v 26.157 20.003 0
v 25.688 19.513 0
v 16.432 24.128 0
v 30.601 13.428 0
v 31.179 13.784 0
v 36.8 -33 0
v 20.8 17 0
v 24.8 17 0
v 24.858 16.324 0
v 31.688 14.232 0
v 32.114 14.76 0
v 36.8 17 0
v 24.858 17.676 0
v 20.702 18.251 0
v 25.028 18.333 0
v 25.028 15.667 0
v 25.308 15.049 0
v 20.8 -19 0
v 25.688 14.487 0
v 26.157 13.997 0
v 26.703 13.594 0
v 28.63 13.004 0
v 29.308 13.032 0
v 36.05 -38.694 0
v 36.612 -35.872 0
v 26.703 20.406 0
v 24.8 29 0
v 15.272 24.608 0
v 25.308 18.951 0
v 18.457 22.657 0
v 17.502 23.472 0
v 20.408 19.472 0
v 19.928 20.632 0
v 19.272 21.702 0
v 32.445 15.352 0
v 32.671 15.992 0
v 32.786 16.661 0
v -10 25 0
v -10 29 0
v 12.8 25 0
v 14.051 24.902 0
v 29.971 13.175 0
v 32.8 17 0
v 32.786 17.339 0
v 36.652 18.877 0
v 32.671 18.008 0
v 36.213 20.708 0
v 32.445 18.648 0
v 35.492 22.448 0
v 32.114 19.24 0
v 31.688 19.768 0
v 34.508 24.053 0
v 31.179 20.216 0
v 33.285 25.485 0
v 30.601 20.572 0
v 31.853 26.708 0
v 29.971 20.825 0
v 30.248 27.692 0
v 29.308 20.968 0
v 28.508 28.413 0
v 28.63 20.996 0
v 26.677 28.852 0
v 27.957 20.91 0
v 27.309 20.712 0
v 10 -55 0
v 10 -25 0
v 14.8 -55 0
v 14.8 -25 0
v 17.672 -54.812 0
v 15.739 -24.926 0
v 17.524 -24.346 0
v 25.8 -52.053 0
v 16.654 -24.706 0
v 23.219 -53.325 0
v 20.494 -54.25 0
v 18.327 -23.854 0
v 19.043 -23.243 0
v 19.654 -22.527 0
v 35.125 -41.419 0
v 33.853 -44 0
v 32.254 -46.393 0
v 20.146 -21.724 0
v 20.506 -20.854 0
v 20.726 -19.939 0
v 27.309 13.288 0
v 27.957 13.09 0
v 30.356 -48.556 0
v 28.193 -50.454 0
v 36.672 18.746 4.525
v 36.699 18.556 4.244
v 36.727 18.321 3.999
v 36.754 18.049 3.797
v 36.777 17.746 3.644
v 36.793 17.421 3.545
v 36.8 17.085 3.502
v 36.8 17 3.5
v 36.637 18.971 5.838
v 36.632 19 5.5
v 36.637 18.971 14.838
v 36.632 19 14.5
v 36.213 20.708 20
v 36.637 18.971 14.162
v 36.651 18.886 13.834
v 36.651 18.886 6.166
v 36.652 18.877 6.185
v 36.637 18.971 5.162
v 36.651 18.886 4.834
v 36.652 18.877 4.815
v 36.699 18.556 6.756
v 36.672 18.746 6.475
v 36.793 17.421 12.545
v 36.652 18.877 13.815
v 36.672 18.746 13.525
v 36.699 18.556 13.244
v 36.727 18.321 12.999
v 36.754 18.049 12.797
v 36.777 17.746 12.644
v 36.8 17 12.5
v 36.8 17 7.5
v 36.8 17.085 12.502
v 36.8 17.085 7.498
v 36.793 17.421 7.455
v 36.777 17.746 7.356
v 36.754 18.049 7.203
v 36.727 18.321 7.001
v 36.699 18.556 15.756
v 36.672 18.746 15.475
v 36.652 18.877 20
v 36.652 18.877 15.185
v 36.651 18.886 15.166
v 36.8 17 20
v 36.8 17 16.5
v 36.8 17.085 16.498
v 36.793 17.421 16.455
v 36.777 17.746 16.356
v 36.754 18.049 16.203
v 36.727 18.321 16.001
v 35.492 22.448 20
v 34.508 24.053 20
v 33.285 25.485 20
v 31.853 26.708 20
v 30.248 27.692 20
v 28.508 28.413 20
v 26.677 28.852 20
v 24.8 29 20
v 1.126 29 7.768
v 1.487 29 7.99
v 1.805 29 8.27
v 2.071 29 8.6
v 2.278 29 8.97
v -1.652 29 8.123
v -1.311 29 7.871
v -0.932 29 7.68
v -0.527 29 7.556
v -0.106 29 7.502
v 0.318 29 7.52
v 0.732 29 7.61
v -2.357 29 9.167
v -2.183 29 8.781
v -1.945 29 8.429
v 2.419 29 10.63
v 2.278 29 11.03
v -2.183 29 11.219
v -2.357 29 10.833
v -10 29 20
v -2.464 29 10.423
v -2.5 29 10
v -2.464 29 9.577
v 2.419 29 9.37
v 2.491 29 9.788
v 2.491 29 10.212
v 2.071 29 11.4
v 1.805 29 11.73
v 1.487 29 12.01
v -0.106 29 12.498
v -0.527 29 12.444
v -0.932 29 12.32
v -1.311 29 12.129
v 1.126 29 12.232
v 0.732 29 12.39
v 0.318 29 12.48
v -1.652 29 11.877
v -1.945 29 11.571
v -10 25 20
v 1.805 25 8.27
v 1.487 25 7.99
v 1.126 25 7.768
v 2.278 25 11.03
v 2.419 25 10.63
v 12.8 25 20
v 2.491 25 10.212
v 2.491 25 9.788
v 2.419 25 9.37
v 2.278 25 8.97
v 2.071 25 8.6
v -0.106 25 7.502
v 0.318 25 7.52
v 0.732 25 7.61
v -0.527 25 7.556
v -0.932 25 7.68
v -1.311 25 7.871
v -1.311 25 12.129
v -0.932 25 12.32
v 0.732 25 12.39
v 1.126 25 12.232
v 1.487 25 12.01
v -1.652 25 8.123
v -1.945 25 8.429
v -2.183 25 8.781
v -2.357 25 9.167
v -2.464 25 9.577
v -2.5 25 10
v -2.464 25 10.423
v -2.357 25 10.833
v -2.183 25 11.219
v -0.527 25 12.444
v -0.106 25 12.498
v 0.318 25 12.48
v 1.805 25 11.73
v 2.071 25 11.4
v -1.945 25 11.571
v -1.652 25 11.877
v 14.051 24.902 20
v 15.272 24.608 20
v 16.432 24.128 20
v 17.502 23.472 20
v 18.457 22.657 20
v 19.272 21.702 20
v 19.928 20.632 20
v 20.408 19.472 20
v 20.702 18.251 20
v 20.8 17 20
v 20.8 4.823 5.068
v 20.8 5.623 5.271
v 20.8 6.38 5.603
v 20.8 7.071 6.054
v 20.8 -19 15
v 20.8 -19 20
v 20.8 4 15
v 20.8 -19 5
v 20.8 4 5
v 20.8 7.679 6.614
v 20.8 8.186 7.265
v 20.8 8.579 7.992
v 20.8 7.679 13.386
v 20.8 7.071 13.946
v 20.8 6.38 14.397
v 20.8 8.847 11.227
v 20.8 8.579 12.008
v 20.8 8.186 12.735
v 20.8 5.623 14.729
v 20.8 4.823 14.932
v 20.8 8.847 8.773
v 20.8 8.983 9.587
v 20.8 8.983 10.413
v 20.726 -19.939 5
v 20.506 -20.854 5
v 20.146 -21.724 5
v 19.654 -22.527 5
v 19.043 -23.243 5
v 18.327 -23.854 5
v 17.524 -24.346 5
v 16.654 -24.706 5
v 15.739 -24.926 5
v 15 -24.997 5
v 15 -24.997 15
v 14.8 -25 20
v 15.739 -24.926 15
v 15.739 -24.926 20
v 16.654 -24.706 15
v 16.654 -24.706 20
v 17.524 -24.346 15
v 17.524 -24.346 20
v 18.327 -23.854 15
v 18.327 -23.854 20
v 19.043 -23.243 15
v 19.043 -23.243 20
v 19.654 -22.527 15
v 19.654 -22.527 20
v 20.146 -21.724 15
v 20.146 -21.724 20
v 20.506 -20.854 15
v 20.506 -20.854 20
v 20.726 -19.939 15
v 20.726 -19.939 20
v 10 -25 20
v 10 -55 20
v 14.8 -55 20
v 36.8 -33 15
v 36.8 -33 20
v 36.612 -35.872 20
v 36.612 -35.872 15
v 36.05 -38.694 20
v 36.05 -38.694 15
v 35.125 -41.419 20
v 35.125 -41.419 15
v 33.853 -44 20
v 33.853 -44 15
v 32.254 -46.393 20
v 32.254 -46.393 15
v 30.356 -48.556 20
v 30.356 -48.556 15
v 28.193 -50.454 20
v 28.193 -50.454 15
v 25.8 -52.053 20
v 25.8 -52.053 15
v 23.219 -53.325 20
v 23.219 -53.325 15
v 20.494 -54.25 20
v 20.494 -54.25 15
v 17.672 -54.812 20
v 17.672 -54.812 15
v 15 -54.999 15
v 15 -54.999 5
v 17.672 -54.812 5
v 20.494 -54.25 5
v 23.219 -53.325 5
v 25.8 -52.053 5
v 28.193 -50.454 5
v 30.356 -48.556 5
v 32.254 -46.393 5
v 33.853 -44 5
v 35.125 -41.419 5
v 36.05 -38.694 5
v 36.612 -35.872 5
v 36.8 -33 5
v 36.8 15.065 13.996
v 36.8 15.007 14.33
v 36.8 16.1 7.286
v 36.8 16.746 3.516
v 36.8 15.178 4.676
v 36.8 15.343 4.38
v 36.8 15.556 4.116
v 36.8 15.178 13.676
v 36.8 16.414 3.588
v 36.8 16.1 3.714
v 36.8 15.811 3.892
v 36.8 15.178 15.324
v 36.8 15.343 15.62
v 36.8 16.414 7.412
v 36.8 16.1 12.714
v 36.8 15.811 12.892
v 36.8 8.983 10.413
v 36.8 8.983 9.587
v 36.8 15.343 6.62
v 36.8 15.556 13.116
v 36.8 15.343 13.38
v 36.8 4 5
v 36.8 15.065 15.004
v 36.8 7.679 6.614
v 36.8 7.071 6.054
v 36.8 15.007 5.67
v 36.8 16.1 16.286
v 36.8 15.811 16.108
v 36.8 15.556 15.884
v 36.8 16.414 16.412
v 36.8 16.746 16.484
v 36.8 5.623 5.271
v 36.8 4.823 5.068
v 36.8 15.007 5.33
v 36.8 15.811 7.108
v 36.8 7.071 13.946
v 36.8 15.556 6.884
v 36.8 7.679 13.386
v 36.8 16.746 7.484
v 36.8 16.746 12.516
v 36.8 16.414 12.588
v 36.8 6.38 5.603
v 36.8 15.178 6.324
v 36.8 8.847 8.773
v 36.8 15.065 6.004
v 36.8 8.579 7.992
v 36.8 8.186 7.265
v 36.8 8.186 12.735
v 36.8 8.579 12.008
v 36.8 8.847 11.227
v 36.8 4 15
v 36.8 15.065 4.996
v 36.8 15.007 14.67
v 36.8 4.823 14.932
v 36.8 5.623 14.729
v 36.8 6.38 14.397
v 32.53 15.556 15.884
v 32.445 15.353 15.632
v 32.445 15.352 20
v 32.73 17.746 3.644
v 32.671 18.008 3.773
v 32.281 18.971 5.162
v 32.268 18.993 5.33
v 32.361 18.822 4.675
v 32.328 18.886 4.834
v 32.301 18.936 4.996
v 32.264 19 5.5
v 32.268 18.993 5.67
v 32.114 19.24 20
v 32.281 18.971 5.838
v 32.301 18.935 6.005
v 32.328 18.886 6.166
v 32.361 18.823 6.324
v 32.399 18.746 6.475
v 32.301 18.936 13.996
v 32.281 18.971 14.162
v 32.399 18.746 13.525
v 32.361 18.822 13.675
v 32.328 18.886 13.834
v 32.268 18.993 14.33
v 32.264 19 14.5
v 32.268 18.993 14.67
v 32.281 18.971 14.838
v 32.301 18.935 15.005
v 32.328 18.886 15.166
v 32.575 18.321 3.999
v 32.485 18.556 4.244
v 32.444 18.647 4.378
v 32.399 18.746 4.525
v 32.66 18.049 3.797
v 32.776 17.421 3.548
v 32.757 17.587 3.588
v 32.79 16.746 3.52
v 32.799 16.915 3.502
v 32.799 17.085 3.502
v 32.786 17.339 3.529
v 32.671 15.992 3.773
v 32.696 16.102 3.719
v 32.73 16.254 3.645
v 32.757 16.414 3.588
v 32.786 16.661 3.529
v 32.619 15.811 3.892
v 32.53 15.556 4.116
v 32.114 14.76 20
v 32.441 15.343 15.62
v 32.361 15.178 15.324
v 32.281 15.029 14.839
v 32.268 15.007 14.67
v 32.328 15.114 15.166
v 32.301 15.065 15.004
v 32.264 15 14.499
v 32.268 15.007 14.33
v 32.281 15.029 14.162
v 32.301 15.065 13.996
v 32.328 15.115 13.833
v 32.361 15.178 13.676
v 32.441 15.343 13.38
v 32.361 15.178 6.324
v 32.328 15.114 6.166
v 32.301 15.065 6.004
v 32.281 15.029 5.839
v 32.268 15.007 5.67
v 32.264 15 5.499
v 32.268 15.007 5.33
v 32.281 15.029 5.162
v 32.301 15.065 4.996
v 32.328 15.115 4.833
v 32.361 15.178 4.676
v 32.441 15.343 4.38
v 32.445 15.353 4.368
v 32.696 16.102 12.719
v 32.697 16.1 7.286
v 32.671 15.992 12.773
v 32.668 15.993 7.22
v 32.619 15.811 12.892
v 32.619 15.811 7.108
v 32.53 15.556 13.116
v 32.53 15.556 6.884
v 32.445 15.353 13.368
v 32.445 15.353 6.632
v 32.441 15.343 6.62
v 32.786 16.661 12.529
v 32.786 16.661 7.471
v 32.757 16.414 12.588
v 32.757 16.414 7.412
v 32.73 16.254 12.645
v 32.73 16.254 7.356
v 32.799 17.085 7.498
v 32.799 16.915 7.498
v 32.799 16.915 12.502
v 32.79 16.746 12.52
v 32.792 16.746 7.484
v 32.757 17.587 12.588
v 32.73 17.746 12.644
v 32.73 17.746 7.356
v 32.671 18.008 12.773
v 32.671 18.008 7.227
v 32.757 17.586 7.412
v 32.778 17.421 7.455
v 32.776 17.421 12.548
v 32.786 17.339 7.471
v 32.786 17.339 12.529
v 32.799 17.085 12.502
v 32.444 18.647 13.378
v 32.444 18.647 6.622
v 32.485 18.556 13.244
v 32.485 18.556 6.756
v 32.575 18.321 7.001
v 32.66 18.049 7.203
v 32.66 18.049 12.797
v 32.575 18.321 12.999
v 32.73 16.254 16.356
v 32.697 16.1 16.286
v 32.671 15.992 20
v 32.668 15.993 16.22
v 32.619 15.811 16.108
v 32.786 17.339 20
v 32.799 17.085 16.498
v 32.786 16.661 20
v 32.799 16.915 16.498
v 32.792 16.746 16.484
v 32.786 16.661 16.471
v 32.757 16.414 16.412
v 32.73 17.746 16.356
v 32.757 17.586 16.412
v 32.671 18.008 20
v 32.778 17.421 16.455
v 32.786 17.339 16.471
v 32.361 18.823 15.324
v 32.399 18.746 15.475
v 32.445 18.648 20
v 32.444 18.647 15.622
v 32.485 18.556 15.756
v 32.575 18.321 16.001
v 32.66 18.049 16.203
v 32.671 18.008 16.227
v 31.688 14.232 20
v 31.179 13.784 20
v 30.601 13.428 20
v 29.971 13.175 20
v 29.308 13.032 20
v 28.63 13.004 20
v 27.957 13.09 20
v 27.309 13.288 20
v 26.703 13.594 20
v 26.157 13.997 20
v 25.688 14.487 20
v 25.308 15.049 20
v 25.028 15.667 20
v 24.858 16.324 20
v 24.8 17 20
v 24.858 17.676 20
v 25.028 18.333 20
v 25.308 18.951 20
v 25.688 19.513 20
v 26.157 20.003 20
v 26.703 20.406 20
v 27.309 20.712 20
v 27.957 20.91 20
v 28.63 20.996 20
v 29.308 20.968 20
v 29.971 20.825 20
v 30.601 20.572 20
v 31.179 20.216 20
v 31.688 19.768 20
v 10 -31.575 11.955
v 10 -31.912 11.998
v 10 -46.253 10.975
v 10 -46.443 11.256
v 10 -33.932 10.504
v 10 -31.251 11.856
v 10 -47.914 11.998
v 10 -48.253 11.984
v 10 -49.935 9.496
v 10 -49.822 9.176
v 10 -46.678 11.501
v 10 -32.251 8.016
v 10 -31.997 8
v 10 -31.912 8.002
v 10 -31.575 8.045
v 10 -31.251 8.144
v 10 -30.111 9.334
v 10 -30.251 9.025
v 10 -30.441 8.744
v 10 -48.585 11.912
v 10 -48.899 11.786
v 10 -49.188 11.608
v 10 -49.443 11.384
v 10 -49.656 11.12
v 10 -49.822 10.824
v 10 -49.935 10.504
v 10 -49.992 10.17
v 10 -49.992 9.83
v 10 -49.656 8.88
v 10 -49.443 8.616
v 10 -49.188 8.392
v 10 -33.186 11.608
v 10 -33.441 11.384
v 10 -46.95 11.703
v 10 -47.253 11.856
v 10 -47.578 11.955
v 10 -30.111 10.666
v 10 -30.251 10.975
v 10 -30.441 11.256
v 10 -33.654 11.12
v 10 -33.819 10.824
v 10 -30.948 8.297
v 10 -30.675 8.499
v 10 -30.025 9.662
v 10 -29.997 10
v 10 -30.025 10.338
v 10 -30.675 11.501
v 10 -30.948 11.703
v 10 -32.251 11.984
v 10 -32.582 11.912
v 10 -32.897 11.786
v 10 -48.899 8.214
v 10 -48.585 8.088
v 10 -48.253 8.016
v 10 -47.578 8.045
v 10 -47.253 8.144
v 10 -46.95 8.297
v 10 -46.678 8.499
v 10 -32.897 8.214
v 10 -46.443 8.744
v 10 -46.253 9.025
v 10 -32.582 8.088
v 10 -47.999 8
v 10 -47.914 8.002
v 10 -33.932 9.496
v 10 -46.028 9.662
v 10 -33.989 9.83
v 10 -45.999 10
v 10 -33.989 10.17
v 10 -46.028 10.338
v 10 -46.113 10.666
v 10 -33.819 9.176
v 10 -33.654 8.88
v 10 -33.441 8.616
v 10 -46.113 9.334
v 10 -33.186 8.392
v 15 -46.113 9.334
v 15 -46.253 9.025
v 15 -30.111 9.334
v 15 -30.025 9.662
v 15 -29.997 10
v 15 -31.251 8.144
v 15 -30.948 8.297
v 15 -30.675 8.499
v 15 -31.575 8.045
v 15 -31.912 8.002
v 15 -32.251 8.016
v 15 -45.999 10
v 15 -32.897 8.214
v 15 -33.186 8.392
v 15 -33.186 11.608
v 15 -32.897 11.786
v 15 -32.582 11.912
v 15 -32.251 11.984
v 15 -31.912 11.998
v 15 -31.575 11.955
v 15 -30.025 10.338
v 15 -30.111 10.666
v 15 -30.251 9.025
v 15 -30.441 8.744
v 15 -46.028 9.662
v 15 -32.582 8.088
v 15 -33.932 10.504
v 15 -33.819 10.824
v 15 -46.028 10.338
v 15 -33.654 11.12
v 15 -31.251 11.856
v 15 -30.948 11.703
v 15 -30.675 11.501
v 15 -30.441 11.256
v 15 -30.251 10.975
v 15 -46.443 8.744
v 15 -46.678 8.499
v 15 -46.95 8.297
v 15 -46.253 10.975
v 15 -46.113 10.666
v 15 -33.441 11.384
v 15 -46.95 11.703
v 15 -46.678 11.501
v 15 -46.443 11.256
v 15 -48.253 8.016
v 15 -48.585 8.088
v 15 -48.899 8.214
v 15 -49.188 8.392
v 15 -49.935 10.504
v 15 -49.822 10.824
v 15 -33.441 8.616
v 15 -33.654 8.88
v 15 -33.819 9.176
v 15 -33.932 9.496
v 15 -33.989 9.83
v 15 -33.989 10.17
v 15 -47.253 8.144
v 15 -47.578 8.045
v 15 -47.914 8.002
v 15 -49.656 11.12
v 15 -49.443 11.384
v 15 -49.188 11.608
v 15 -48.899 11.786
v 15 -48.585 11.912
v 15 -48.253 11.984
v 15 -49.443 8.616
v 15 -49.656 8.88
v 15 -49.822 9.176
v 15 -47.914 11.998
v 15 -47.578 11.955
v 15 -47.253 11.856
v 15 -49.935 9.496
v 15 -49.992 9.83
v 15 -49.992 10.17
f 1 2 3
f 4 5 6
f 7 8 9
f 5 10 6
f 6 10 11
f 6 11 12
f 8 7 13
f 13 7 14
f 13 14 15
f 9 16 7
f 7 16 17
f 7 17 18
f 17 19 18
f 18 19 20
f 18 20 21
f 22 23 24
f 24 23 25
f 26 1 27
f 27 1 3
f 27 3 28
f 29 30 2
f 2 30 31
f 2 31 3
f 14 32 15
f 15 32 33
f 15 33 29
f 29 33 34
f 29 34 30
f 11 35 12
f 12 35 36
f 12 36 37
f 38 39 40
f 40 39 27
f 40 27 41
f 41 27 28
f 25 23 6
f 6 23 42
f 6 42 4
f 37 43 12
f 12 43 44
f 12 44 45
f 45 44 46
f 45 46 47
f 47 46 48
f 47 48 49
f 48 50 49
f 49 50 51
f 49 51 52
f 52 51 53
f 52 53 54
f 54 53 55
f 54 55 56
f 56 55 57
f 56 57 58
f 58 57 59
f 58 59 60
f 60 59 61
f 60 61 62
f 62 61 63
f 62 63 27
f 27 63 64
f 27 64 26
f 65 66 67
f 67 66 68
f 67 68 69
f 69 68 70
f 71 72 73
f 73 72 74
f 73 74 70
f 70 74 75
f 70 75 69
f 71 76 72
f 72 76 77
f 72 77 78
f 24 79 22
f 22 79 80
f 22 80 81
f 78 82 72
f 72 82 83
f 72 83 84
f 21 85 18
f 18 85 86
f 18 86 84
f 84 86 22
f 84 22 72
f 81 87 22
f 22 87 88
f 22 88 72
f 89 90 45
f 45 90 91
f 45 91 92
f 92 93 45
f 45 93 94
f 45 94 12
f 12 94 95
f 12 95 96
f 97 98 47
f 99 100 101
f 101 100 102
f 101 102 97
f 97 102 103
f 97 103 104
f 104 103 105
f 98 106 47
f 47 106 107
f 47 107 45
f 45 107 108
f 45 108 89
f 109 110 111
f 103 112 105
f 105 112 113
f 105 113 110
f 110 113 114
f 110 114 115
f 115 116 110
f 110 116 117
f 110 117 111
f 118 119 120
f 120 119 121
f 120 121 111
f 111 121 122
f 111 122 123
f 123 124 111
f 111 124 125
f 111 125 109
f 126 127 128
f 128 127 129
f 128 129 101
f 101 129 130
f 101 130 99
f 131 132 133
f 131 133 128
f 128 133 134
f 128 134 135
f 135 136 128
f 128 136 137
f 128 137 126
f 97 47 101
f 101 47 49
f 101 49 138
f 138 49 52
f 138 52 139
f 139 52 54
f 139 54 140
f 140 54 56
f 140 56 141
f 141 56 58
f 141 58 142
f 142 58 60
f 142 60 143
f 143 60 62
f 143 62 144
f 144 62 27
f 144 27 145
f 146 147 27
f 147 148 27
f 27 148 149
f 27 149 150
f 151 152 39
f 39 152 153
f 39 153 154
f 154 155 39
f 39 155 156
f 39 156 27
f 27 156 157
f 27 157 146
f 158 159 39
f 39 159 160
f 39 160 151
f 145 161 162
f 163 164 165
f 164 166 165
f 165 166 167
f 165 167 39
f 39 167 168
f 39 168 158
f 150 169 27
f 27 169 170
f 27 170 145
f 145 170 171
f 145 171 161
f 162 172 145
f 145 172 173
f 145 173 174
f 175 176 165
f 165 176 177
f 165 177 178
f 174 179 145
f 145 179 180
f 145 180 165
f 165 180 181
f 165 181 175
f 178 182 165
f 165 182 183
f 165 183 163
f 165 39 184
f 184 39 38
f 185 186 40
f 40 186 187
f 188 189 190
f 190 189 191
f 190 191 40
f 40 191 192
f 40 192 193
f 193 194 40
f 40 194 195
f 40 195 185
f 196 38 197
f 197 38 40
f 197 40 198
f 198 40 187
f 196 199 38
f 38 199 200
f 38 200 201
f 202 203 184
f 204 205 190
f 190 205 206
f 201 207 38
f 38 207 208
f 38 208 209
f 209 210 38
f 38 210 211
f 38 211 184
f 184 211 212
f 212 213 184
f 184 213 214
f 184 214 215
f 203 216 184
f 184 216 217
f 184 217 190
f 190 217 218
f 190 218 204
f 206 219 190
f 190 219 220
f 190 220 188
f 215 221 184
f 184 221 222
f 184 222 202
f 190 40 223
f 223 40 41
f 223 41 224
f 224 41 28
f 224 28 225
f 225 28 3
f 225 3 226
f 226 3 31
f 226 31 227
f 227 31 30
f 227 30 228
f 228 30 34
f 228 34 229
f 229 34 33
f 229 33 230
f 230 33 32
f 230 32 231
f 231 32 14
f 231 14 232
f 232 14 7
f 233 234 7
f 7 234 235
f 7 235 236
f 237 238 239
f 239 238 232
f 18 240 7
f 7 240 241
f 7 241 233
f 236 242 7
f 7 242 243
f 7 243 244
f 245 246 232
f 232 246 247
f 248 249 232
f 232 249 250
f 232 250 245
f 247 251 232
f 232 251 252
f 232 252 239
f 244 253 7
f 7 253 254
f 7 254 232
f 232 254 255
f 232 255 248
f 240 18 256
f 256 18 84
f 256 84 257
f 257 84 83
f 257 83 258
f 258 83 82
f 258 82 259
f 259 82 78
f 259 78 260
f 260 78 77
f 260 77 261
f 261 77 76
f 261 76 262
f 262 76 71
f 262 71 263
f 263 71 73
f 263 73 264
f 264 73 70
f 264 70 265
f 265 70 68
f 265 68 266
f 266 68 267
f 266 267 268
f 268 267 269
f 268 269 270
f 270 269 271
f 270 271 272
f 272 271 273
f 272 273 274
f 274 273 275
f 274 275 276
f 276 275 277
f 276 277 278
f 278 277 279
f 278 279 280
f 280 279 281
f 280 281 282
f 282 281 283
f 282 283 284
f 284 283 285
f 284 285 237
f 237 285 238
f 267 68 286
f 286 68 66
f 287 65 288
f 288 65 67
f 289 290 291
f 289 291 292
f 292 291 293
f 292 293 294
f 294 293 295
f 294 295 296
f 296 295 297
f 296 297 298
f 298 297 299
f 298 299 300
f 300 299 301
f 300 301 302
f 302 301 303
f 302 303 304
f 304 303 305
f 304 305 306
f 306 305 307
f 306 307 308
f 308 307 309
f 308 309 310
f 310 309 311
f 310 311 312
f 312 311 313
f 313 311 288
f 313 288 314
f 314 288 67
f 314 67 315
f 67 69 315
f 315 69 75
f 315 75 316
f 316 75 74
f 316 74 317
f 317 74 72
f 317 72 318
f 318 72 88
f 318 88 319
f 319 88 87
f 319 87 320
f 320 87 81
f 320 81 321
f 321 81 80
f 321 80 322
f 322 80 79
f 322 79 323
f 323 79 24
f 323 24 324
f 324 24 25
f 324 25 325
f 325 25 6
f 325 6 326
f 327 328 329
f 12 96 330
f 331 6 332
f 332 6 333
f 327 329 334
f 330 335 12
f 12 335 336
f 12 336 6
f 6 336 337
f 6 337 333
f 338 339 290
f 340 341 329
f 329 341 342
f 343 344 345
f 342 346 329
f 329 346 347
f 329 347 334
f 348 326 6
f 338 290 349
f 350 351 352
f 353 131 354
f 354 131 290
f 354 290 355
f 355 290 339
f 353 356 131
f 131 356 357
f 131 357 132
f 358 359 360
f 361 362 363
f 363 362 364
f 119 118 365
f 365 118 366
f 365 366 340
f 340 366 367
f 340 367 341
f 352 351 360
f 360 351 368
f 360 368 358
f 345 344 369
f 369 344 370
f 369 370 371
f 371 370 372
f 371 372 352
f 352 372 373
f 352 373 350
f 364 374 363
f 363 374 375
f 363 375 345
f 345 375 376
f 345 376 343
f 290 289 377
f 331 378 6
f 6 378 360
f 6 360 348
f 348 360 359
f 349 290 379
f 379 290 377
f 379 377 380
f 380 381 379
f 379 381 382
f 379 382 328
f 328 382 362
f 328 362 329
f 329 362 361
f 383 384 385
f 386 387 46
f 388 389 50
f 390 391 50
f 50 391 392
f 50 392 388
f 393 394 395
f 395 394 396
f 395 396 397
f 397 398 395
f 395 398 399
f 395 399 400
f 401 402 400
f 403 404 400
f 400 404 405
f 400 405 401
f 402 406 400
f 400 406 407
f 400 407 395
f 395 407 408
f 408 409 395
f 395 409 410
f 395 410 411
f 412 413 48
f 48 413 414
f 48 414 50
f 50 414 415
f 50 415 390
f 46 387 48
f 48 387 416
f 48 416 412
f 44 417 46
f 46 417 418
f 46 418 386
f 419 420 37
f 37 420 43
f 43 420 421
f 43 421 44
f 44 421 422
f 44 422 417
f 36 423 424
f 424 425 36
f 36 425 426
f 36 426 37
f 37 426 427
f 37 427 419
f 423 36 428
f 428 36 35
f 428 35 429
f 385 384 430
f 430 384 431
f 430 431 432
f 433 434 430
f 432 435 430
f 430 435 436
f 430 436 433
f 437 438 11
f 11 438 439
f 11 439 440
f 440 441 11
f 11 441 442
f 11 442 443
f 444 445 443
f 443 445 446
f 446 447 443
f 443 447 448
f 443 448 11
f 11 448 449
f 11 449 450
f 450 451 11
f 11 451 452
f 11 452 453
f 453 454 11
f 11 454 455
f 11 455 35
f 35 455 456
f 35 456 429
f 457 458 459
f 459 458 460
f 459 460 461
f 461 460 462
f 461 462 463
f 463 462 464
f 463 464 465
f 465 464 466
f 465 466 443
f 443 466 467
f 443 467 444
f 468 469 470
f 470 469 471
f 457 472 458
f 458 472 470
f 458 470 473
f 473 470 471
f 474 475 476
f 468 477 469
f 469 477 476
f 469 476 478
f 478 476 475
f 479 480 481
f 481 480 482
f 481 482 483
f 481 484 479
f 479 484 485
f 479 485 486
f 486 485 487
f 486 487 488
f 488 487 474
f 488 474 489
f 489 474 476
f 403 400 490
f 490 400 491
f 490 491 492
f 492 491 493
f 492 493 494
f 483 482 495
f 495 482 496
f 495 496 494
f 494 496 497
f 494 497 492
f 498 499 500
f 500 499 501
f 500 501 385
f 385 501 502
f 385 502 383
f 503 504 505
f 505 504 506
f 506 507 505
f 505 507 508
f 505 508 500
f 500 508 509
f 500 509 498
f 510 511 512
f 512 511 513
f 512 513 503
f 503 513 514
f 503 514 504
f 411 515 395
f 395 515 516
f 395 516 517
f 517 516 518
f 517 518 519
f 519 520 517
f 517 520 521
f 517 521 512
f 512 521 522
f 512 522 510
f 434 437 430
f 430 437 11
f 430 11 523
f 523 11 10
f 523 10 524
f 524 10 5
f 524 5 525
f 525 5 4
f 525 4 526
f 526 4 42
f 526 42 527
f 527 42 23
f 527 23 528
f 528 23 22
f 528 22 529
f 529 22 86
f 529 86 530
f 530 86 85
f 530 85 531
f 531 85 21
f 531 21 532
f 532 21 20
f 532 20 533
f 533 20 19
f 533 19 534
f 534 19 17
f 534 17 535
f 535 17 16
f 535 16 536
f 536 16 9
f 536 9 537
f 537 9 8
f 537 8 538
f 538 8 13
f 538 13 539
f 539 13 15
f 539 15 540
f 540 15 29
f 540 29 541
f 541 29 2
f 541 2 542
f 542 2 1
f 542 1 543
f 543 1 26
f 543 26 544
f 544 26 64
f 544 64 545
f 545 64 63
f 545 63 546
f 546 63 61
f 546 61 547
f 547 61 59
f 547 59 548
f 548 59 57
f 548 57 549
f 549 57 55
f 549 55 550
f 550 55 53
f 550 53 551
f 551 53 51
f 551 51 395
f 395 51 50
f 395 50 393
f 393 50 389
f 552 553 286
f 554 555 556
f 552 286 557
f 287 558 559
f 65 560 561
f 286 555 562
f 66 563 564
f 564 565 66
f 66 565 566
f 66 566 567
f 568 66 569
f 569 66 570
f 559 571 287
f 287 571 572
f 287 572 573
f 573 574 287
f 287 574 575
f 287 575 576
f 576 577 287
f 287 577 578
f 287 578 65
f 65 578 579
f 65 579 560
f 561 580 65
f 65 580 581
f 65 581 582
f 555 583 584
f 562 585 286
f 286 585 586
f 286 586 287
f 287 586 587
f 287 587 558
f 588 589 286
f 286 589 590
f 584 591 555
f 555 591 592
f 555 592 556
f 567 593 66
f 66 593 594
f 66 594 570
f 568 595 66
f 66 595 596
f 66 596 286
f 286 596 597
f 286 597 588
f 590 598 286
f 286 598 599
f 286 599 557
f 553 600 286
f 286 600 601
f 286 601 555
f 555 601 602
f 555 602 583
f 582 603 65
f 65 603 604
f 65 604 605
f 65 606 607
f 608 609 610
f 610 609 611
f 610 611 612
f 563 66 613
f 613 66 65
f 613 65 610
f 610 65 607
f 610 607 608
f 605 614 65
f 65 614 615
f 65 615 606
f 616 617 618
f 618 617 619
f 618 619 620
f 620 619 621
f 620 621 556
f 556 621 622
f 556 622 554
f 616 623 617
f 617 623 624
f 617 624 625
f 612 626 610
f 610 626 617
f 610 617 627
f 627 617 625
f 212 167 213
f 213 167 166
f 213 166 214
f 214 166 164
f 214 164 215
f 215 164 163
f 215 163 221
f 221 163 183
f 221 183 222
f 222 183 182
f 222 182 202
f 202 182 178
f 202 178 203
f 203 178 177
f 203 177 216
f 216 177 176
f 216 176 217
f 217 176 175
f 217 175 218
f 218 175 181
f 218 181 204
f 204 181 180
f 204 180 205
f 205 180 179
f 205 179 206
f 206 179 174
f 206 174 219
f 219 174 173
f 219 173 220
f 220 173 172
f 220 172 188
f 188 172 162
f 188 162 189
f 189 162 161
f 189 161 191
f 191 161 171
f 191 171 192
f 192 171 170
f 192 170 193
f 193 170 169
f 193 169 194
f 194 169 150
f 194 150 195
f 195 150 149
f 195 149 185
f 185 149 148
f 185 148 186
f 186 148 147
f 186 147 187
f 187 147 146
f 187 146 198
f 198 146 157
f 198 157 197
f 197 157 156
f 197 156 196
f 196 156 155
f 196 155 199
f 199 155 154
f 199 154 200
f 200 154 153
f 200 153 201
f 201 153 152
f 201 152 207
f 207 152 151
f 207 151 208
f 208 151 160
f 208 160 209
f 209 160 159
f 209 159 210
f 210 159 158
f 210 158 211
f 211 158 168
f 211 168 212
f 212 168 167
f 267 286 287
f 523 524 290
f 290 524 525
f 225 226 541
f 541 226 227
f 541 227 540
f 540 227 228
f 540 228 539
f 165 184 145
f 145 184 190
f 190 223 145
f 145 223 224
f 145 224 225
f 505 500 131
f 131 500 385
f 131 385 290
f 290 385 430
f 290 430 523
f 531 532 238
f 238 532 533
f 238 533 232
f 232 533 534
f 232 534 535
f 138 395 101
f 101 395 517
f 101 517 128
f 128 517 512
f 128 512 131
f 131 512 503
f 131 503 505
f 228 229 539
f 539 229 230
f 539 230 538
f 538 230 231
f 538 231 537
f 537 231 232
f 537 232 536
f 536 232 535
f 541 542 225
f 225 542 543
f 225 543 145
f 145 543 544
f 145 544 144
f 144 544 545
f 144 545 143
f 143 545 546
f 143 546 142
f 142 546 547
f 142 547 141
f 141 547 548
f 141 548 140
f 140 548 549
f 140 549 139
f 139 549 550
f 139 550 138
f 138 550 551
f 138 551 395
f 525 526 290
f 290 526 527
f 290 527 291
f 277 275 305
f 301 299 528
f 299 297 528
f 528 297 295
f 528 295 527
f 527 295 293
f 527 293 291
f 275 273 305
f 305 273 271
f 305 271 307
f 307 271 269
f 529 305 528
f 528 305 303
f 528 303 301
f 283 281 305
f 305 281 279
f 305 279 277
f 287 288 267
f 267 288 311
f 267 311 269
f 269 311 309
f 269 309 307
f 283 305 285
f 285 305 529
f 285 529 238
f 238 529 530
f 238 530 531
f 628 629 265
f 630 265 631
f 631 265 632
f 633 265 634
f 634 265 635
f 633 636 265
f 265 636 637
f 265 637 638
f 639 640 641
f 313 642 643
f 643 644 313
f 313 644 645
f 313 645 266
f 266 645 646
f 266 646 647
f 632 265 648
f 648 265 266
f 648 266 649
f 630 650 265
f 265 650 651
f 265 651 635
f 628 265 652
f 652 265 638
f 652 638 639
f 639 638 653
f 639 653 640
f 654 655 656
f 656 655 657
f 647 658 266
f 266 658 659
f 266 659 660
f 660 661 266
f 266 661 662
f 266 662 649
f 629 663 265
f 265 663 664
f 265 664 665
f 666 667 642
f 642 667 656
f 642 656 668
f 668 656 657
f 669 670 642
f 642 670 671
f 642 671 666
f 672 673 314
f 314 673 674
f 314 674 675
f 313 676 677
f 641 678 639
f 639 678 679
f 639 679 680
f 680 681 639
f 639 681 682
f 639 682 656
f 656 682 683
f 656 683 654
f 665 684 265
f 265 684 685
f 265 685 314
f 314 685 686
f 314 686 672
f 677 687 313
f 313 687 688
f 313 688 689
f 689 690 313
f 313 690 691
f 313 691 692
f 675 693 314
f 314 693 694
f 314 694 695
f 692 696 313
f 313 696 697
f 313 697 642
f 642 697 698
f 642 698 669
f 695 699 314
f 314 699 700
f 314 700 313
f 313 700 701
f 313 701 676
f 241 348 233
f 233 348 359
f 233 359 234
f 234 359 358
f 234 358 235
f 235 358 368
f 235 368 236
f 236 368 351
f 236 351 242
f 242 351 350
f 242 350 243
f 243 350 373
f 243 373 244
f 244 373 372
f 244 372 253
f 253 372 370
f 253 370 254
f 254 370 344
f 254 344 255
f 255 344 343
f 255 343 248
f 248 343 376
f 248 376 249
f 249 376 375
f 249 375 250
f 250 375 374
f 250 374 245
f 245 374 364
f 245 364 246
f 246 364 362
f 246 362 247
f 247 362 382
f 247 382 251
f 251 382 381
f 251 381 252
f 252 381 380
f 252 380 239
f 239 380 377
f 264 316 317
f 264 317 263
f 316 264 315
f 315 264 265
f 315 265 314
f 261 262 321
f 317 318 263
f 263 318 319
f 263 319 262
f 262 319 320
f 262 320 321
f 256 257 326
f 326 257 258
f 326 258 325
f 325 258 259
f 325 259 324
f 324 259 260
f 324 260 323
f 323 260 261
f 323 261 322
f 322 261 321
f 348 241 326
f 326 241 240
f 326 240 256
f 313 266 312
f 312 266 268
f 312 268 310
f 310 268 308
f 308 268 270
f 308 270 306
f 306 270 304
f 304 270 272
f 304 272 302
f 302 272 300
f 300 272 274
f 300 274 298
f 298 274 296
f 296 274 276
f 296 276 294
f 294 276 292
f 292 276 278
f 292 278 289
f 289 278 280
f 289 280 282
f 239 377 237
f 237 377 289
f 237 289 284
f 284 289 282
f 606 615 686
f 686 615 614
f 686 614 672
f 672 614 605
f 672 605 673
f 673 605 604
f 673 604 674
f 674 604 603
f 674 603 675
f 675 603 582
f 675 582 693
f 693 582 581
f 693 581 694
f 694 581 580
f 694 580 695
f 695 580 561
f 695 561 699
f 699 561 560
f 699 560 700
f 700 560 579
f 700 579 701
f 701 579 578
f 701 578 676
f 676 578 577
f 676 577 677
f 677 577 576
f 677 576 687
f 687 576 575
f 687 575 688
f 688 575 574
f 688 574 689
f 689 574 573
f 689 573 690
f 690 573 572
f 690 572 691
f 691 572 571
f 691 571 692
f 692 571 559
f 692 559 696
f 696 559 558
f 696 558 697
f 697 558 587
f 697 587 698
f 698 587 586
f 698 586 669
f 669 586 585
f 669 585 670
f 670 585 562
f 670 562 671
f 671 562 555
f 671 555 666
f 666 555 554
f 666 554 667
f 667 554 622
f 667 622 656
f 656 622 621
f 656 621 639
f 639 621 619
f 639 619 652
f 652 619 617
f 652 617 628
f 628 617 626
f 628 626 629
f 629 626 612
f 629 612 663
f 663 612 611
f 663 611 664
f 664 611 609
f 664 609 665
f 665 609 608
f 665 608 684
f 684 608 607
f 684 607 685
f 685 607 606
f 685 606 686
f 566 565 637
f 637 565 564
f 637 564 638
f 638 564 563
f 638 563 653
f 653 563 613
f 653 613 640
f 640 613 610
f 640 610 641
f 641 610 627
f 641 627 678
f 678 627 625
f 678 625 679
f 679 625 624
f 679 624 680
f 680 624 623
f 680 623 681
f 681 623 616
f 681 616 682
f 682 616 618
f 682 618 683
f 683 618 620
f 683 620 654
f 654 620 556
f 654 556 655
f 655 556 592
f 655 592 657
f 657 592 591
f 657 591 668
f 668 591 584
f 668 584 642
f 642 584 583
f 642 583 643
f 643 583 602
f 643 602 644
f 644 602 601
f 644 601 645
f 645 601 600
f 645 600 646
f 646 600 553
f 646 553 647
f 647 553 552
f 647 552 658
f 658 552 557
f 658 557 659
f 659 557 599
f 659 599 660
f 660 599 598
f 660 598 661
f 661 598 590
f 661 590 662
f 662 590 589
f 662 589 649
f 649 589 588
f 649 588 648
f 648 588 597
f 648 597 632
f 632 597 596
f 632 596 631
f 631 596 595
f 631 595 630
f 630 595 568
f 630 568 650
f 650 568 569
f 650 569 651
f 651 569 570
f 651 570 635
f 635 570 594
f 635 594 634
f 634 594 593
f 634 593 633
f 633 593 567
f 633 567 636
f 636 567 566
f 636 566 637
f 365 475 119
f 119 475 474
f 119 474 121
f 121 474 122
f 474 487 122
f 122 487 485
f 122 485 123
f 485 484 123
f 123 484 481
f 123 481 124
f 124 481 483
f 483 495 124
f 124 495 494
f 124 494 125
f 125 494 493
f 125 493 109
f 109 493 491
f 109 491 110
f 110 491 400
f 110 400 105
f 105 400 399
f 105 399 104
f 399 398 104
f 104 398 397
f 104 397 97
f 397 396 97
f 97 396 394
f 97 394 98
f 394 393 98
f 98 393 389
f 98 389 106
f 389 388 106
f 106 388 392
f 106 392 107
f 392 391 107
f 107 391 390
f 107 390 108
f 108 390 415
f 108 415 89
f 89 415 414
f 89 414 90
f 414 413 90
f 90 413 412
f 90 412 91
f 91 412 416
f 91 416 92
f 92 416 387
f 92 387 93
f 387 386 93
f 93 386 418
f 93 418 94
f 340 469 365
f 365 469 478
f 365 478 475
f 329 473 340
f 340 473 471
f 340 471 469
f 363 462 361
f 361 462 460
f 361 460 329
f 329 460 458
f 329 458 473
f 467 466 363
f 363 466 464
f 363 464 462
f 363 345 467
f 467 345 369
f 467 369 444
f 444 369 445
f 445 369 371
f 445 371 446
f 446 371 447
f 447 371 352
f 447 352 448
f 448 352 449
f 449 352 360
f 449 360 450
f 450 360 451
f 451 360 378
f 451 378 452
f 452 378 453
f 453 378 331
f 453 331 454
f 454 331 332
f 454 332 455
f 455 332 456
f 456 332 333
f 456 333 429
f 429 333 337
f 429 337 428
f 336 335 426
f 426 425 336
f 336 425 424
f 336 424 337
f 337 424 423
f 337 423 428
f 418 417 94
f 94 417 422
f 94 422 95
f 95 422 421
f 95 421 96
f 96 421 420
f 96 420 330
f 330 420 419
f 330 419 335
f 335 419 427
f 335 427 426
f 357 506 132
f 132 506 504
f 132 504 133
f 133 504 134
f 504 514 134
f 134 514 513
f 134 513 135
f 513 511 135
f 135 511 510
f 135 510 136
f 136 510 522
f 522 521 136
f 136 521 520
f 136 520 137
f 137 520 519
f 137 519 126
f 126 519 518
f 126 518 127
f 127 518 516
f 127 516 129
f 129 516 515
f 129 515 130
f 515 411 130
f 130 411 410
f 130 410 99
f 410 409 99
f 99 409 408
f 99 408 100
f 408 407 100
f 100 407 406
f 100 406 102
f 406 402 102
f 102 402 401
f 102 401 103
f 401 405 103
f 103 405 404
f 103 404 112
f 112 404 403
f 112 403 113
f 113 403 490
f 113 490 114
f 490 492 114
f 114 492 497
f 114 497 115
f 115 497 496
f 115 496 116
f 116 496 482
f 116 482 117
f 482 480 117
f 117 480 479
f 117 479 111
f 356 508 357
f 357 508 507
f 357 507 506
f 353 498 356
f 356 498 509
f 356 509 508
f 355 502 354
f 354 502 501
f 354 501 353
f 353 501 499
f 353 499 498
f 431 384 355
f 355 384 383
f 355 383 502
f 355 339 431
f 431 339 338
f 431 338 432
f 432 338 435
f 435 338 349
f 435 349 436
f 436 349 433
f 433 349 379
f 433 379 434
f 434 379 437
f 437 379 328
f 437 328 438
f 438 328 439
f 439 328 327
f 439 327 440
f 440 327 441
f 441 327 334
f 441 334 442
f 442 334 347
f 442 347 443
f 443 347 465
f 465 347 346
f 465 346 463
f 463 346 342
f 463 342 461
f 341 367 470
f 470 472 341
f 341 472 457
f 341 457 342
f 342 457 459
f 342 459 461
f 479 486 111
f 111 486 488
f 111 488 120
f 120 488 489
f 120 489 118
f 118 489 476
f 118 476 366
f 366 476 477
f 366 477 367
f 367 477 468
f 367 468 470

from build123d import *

# Parameters (mm, degrees)
SKETCH1_R           = 4
SKETCH1_R_2         = 2
BOSS_EXTRUDE1_DEPTH = 25
SKETCH2_W           = 20
SKETCH2_H           = 20
CUT_EXTRUDE1_DEPTH  = 30
SKETCH3_R           = 2.5
CUT_EXTRUDE2_DEPTH  = 25
SKETCH6_W           = 100
SKETCH6_H           = 150
CUT_EXTRUDE5_DEPTH  = 5
CUT_EXTRUDE6_DEPTH  = 21.8
SKETCH8_R           = 2
CUT_EXTRUDE7_DEPTH  = 21.8
SKETCH9_R           = 2
CUT_EXTRUDE8_DEPTH  = 6


with BuildPart() as part:
    # Sketch1 → Boss-Extrude1 (new body)
    with BuildSketch(Plane.XY):
        with BuildLine():
            Line((-10, 25), (12.8, 25))
            ThreePointArc((12.8, 25), (18.456854249, 22.656854249), (20.8, 17))
            Line((20.8, 17), (20.8, -19))
            ThreePointArc((20.8, -19), (19.042640687, -23.242640687), (14.8, -25))
            Line((14.8, -25), (-10, -25))
            Line((-10, -25), (-10, -55))
            Line((-10, -55), (14.8, -55))
            ThreePointArc((14.8, -55), (30.356349186, -48.556349186), (36.8, -33))
            Line((36.8, -33), (36.8, 17))
            ThreePointArc((36.8, 17), (33.285281374, 25.485281374), (24.8, 29))
            Line((24.8, 29), (-10, 29))
            Line((-10, 29), (-10, 25))
        make_face()
        with Locations((28.8, 17)):
            Circle(SKETCH1_R, mode=Mode.SUBTRACT)
        with Locations((0, -35)):
            Circle(SKETCH1_R_2, mode=Mode.SUBTRACT)
    extrude(amount=BOSS_EXTRUDE1_DEPTH)

    # Sketch2 → Cut-Extrude1 (cut)
    with BuildSketch(Plane(origin=(0, -25, 0), x_dir=(1, 0, 0), z_dir=(0, 1, 0))):
        with Locations((0, -10)):
            Rectangle(SKETCH2_W, SKETCH2_H)
    extrude(amount=-CUT_EXTRUDE1_DEPTH, mode=Mode.SUBTRACT)

    # Sketch3 → Cut-Extrude2 (cut)
    with BuildSketch(Plane(origin=(0, 29, 0), x_dir=(1, 0, 0), z_dir=(0, 1, 0))):
        with Locations(Location((0, -10, 0), (0, 0, 180))):
            Circle(SKETCH3_R)
    extrude(amount=-CUT_EXTRUDE2_DEPTH, mode=Mode.SUBTRACT)

    # Sketch6 → Cut-Extrude5 (cut)
    with BuildSketch(Plane.XY.offset(25)):
        Rectangle(SKETCH6_W, SKETCH6_H)
    extrude(amount=-CUT_EXTRUDE5_DEPTH, mode=Mode.SUBTRACT)

    # Sketch7 → Cut-Extrude6 (cut)
    with BuildSketch(Plane(origin=(36.8, 0, 0), x_dir=(0, 0, -1), z_dir=(1, 0, 0))):
        with BuildLine():
            Line((-5, 4), (-5, -56))
            ThreePointArc((-5, -56), (-10, -61), (-15, -56))
            Line((-15, -56), (-15, 4))
            ThreePointArc((-15, 4), (-10, 9), (-5, 4))
        make_face()
    extrude(amount=-CUT_EXTRUDE6_DEPTH, mode=Mode.SUBTRACT)

    # Sketch8 → Cut-Extrude7 (cut)
    with BuildSketch(Plane(origin=(15, 0, 0), x_dir=(0, 0, -1), z_dir=(1, 0, 0))):
        with Locations(Location((-10, -31.99666574, 0), (0, 0, 90))):
            Circle(SKETCH8_R)
        with Locations(Location((-10, -47.99909089, 0), (0, 0, 90))):
            Circle(SKETCH8_R)
    extrude(amount=-CUT_EXTRUDE7_DEPTH, mode=Mode.SUBTRACT)

    # Sketch9 → Cut-Extrude8 (cut)
    with BuildSketch(Plane(origin=(36.8, 0, 0), x_dir=(0, 0, -1), z_dir=(1, 0, 0))):
        with Locations(Location((-14.5, 17, 0), (0, 0, 90))):
            Circle(SKETCH9_R)
        with Locations(Location((-5.5, 17, 0), (0, 0, 90))):
            Circle(SKETCH9_R)
    extrude(amount=-CUT_EXTRUDE8_DEPTH, mode=Mode.SUBTRACT)


solid = part.part
